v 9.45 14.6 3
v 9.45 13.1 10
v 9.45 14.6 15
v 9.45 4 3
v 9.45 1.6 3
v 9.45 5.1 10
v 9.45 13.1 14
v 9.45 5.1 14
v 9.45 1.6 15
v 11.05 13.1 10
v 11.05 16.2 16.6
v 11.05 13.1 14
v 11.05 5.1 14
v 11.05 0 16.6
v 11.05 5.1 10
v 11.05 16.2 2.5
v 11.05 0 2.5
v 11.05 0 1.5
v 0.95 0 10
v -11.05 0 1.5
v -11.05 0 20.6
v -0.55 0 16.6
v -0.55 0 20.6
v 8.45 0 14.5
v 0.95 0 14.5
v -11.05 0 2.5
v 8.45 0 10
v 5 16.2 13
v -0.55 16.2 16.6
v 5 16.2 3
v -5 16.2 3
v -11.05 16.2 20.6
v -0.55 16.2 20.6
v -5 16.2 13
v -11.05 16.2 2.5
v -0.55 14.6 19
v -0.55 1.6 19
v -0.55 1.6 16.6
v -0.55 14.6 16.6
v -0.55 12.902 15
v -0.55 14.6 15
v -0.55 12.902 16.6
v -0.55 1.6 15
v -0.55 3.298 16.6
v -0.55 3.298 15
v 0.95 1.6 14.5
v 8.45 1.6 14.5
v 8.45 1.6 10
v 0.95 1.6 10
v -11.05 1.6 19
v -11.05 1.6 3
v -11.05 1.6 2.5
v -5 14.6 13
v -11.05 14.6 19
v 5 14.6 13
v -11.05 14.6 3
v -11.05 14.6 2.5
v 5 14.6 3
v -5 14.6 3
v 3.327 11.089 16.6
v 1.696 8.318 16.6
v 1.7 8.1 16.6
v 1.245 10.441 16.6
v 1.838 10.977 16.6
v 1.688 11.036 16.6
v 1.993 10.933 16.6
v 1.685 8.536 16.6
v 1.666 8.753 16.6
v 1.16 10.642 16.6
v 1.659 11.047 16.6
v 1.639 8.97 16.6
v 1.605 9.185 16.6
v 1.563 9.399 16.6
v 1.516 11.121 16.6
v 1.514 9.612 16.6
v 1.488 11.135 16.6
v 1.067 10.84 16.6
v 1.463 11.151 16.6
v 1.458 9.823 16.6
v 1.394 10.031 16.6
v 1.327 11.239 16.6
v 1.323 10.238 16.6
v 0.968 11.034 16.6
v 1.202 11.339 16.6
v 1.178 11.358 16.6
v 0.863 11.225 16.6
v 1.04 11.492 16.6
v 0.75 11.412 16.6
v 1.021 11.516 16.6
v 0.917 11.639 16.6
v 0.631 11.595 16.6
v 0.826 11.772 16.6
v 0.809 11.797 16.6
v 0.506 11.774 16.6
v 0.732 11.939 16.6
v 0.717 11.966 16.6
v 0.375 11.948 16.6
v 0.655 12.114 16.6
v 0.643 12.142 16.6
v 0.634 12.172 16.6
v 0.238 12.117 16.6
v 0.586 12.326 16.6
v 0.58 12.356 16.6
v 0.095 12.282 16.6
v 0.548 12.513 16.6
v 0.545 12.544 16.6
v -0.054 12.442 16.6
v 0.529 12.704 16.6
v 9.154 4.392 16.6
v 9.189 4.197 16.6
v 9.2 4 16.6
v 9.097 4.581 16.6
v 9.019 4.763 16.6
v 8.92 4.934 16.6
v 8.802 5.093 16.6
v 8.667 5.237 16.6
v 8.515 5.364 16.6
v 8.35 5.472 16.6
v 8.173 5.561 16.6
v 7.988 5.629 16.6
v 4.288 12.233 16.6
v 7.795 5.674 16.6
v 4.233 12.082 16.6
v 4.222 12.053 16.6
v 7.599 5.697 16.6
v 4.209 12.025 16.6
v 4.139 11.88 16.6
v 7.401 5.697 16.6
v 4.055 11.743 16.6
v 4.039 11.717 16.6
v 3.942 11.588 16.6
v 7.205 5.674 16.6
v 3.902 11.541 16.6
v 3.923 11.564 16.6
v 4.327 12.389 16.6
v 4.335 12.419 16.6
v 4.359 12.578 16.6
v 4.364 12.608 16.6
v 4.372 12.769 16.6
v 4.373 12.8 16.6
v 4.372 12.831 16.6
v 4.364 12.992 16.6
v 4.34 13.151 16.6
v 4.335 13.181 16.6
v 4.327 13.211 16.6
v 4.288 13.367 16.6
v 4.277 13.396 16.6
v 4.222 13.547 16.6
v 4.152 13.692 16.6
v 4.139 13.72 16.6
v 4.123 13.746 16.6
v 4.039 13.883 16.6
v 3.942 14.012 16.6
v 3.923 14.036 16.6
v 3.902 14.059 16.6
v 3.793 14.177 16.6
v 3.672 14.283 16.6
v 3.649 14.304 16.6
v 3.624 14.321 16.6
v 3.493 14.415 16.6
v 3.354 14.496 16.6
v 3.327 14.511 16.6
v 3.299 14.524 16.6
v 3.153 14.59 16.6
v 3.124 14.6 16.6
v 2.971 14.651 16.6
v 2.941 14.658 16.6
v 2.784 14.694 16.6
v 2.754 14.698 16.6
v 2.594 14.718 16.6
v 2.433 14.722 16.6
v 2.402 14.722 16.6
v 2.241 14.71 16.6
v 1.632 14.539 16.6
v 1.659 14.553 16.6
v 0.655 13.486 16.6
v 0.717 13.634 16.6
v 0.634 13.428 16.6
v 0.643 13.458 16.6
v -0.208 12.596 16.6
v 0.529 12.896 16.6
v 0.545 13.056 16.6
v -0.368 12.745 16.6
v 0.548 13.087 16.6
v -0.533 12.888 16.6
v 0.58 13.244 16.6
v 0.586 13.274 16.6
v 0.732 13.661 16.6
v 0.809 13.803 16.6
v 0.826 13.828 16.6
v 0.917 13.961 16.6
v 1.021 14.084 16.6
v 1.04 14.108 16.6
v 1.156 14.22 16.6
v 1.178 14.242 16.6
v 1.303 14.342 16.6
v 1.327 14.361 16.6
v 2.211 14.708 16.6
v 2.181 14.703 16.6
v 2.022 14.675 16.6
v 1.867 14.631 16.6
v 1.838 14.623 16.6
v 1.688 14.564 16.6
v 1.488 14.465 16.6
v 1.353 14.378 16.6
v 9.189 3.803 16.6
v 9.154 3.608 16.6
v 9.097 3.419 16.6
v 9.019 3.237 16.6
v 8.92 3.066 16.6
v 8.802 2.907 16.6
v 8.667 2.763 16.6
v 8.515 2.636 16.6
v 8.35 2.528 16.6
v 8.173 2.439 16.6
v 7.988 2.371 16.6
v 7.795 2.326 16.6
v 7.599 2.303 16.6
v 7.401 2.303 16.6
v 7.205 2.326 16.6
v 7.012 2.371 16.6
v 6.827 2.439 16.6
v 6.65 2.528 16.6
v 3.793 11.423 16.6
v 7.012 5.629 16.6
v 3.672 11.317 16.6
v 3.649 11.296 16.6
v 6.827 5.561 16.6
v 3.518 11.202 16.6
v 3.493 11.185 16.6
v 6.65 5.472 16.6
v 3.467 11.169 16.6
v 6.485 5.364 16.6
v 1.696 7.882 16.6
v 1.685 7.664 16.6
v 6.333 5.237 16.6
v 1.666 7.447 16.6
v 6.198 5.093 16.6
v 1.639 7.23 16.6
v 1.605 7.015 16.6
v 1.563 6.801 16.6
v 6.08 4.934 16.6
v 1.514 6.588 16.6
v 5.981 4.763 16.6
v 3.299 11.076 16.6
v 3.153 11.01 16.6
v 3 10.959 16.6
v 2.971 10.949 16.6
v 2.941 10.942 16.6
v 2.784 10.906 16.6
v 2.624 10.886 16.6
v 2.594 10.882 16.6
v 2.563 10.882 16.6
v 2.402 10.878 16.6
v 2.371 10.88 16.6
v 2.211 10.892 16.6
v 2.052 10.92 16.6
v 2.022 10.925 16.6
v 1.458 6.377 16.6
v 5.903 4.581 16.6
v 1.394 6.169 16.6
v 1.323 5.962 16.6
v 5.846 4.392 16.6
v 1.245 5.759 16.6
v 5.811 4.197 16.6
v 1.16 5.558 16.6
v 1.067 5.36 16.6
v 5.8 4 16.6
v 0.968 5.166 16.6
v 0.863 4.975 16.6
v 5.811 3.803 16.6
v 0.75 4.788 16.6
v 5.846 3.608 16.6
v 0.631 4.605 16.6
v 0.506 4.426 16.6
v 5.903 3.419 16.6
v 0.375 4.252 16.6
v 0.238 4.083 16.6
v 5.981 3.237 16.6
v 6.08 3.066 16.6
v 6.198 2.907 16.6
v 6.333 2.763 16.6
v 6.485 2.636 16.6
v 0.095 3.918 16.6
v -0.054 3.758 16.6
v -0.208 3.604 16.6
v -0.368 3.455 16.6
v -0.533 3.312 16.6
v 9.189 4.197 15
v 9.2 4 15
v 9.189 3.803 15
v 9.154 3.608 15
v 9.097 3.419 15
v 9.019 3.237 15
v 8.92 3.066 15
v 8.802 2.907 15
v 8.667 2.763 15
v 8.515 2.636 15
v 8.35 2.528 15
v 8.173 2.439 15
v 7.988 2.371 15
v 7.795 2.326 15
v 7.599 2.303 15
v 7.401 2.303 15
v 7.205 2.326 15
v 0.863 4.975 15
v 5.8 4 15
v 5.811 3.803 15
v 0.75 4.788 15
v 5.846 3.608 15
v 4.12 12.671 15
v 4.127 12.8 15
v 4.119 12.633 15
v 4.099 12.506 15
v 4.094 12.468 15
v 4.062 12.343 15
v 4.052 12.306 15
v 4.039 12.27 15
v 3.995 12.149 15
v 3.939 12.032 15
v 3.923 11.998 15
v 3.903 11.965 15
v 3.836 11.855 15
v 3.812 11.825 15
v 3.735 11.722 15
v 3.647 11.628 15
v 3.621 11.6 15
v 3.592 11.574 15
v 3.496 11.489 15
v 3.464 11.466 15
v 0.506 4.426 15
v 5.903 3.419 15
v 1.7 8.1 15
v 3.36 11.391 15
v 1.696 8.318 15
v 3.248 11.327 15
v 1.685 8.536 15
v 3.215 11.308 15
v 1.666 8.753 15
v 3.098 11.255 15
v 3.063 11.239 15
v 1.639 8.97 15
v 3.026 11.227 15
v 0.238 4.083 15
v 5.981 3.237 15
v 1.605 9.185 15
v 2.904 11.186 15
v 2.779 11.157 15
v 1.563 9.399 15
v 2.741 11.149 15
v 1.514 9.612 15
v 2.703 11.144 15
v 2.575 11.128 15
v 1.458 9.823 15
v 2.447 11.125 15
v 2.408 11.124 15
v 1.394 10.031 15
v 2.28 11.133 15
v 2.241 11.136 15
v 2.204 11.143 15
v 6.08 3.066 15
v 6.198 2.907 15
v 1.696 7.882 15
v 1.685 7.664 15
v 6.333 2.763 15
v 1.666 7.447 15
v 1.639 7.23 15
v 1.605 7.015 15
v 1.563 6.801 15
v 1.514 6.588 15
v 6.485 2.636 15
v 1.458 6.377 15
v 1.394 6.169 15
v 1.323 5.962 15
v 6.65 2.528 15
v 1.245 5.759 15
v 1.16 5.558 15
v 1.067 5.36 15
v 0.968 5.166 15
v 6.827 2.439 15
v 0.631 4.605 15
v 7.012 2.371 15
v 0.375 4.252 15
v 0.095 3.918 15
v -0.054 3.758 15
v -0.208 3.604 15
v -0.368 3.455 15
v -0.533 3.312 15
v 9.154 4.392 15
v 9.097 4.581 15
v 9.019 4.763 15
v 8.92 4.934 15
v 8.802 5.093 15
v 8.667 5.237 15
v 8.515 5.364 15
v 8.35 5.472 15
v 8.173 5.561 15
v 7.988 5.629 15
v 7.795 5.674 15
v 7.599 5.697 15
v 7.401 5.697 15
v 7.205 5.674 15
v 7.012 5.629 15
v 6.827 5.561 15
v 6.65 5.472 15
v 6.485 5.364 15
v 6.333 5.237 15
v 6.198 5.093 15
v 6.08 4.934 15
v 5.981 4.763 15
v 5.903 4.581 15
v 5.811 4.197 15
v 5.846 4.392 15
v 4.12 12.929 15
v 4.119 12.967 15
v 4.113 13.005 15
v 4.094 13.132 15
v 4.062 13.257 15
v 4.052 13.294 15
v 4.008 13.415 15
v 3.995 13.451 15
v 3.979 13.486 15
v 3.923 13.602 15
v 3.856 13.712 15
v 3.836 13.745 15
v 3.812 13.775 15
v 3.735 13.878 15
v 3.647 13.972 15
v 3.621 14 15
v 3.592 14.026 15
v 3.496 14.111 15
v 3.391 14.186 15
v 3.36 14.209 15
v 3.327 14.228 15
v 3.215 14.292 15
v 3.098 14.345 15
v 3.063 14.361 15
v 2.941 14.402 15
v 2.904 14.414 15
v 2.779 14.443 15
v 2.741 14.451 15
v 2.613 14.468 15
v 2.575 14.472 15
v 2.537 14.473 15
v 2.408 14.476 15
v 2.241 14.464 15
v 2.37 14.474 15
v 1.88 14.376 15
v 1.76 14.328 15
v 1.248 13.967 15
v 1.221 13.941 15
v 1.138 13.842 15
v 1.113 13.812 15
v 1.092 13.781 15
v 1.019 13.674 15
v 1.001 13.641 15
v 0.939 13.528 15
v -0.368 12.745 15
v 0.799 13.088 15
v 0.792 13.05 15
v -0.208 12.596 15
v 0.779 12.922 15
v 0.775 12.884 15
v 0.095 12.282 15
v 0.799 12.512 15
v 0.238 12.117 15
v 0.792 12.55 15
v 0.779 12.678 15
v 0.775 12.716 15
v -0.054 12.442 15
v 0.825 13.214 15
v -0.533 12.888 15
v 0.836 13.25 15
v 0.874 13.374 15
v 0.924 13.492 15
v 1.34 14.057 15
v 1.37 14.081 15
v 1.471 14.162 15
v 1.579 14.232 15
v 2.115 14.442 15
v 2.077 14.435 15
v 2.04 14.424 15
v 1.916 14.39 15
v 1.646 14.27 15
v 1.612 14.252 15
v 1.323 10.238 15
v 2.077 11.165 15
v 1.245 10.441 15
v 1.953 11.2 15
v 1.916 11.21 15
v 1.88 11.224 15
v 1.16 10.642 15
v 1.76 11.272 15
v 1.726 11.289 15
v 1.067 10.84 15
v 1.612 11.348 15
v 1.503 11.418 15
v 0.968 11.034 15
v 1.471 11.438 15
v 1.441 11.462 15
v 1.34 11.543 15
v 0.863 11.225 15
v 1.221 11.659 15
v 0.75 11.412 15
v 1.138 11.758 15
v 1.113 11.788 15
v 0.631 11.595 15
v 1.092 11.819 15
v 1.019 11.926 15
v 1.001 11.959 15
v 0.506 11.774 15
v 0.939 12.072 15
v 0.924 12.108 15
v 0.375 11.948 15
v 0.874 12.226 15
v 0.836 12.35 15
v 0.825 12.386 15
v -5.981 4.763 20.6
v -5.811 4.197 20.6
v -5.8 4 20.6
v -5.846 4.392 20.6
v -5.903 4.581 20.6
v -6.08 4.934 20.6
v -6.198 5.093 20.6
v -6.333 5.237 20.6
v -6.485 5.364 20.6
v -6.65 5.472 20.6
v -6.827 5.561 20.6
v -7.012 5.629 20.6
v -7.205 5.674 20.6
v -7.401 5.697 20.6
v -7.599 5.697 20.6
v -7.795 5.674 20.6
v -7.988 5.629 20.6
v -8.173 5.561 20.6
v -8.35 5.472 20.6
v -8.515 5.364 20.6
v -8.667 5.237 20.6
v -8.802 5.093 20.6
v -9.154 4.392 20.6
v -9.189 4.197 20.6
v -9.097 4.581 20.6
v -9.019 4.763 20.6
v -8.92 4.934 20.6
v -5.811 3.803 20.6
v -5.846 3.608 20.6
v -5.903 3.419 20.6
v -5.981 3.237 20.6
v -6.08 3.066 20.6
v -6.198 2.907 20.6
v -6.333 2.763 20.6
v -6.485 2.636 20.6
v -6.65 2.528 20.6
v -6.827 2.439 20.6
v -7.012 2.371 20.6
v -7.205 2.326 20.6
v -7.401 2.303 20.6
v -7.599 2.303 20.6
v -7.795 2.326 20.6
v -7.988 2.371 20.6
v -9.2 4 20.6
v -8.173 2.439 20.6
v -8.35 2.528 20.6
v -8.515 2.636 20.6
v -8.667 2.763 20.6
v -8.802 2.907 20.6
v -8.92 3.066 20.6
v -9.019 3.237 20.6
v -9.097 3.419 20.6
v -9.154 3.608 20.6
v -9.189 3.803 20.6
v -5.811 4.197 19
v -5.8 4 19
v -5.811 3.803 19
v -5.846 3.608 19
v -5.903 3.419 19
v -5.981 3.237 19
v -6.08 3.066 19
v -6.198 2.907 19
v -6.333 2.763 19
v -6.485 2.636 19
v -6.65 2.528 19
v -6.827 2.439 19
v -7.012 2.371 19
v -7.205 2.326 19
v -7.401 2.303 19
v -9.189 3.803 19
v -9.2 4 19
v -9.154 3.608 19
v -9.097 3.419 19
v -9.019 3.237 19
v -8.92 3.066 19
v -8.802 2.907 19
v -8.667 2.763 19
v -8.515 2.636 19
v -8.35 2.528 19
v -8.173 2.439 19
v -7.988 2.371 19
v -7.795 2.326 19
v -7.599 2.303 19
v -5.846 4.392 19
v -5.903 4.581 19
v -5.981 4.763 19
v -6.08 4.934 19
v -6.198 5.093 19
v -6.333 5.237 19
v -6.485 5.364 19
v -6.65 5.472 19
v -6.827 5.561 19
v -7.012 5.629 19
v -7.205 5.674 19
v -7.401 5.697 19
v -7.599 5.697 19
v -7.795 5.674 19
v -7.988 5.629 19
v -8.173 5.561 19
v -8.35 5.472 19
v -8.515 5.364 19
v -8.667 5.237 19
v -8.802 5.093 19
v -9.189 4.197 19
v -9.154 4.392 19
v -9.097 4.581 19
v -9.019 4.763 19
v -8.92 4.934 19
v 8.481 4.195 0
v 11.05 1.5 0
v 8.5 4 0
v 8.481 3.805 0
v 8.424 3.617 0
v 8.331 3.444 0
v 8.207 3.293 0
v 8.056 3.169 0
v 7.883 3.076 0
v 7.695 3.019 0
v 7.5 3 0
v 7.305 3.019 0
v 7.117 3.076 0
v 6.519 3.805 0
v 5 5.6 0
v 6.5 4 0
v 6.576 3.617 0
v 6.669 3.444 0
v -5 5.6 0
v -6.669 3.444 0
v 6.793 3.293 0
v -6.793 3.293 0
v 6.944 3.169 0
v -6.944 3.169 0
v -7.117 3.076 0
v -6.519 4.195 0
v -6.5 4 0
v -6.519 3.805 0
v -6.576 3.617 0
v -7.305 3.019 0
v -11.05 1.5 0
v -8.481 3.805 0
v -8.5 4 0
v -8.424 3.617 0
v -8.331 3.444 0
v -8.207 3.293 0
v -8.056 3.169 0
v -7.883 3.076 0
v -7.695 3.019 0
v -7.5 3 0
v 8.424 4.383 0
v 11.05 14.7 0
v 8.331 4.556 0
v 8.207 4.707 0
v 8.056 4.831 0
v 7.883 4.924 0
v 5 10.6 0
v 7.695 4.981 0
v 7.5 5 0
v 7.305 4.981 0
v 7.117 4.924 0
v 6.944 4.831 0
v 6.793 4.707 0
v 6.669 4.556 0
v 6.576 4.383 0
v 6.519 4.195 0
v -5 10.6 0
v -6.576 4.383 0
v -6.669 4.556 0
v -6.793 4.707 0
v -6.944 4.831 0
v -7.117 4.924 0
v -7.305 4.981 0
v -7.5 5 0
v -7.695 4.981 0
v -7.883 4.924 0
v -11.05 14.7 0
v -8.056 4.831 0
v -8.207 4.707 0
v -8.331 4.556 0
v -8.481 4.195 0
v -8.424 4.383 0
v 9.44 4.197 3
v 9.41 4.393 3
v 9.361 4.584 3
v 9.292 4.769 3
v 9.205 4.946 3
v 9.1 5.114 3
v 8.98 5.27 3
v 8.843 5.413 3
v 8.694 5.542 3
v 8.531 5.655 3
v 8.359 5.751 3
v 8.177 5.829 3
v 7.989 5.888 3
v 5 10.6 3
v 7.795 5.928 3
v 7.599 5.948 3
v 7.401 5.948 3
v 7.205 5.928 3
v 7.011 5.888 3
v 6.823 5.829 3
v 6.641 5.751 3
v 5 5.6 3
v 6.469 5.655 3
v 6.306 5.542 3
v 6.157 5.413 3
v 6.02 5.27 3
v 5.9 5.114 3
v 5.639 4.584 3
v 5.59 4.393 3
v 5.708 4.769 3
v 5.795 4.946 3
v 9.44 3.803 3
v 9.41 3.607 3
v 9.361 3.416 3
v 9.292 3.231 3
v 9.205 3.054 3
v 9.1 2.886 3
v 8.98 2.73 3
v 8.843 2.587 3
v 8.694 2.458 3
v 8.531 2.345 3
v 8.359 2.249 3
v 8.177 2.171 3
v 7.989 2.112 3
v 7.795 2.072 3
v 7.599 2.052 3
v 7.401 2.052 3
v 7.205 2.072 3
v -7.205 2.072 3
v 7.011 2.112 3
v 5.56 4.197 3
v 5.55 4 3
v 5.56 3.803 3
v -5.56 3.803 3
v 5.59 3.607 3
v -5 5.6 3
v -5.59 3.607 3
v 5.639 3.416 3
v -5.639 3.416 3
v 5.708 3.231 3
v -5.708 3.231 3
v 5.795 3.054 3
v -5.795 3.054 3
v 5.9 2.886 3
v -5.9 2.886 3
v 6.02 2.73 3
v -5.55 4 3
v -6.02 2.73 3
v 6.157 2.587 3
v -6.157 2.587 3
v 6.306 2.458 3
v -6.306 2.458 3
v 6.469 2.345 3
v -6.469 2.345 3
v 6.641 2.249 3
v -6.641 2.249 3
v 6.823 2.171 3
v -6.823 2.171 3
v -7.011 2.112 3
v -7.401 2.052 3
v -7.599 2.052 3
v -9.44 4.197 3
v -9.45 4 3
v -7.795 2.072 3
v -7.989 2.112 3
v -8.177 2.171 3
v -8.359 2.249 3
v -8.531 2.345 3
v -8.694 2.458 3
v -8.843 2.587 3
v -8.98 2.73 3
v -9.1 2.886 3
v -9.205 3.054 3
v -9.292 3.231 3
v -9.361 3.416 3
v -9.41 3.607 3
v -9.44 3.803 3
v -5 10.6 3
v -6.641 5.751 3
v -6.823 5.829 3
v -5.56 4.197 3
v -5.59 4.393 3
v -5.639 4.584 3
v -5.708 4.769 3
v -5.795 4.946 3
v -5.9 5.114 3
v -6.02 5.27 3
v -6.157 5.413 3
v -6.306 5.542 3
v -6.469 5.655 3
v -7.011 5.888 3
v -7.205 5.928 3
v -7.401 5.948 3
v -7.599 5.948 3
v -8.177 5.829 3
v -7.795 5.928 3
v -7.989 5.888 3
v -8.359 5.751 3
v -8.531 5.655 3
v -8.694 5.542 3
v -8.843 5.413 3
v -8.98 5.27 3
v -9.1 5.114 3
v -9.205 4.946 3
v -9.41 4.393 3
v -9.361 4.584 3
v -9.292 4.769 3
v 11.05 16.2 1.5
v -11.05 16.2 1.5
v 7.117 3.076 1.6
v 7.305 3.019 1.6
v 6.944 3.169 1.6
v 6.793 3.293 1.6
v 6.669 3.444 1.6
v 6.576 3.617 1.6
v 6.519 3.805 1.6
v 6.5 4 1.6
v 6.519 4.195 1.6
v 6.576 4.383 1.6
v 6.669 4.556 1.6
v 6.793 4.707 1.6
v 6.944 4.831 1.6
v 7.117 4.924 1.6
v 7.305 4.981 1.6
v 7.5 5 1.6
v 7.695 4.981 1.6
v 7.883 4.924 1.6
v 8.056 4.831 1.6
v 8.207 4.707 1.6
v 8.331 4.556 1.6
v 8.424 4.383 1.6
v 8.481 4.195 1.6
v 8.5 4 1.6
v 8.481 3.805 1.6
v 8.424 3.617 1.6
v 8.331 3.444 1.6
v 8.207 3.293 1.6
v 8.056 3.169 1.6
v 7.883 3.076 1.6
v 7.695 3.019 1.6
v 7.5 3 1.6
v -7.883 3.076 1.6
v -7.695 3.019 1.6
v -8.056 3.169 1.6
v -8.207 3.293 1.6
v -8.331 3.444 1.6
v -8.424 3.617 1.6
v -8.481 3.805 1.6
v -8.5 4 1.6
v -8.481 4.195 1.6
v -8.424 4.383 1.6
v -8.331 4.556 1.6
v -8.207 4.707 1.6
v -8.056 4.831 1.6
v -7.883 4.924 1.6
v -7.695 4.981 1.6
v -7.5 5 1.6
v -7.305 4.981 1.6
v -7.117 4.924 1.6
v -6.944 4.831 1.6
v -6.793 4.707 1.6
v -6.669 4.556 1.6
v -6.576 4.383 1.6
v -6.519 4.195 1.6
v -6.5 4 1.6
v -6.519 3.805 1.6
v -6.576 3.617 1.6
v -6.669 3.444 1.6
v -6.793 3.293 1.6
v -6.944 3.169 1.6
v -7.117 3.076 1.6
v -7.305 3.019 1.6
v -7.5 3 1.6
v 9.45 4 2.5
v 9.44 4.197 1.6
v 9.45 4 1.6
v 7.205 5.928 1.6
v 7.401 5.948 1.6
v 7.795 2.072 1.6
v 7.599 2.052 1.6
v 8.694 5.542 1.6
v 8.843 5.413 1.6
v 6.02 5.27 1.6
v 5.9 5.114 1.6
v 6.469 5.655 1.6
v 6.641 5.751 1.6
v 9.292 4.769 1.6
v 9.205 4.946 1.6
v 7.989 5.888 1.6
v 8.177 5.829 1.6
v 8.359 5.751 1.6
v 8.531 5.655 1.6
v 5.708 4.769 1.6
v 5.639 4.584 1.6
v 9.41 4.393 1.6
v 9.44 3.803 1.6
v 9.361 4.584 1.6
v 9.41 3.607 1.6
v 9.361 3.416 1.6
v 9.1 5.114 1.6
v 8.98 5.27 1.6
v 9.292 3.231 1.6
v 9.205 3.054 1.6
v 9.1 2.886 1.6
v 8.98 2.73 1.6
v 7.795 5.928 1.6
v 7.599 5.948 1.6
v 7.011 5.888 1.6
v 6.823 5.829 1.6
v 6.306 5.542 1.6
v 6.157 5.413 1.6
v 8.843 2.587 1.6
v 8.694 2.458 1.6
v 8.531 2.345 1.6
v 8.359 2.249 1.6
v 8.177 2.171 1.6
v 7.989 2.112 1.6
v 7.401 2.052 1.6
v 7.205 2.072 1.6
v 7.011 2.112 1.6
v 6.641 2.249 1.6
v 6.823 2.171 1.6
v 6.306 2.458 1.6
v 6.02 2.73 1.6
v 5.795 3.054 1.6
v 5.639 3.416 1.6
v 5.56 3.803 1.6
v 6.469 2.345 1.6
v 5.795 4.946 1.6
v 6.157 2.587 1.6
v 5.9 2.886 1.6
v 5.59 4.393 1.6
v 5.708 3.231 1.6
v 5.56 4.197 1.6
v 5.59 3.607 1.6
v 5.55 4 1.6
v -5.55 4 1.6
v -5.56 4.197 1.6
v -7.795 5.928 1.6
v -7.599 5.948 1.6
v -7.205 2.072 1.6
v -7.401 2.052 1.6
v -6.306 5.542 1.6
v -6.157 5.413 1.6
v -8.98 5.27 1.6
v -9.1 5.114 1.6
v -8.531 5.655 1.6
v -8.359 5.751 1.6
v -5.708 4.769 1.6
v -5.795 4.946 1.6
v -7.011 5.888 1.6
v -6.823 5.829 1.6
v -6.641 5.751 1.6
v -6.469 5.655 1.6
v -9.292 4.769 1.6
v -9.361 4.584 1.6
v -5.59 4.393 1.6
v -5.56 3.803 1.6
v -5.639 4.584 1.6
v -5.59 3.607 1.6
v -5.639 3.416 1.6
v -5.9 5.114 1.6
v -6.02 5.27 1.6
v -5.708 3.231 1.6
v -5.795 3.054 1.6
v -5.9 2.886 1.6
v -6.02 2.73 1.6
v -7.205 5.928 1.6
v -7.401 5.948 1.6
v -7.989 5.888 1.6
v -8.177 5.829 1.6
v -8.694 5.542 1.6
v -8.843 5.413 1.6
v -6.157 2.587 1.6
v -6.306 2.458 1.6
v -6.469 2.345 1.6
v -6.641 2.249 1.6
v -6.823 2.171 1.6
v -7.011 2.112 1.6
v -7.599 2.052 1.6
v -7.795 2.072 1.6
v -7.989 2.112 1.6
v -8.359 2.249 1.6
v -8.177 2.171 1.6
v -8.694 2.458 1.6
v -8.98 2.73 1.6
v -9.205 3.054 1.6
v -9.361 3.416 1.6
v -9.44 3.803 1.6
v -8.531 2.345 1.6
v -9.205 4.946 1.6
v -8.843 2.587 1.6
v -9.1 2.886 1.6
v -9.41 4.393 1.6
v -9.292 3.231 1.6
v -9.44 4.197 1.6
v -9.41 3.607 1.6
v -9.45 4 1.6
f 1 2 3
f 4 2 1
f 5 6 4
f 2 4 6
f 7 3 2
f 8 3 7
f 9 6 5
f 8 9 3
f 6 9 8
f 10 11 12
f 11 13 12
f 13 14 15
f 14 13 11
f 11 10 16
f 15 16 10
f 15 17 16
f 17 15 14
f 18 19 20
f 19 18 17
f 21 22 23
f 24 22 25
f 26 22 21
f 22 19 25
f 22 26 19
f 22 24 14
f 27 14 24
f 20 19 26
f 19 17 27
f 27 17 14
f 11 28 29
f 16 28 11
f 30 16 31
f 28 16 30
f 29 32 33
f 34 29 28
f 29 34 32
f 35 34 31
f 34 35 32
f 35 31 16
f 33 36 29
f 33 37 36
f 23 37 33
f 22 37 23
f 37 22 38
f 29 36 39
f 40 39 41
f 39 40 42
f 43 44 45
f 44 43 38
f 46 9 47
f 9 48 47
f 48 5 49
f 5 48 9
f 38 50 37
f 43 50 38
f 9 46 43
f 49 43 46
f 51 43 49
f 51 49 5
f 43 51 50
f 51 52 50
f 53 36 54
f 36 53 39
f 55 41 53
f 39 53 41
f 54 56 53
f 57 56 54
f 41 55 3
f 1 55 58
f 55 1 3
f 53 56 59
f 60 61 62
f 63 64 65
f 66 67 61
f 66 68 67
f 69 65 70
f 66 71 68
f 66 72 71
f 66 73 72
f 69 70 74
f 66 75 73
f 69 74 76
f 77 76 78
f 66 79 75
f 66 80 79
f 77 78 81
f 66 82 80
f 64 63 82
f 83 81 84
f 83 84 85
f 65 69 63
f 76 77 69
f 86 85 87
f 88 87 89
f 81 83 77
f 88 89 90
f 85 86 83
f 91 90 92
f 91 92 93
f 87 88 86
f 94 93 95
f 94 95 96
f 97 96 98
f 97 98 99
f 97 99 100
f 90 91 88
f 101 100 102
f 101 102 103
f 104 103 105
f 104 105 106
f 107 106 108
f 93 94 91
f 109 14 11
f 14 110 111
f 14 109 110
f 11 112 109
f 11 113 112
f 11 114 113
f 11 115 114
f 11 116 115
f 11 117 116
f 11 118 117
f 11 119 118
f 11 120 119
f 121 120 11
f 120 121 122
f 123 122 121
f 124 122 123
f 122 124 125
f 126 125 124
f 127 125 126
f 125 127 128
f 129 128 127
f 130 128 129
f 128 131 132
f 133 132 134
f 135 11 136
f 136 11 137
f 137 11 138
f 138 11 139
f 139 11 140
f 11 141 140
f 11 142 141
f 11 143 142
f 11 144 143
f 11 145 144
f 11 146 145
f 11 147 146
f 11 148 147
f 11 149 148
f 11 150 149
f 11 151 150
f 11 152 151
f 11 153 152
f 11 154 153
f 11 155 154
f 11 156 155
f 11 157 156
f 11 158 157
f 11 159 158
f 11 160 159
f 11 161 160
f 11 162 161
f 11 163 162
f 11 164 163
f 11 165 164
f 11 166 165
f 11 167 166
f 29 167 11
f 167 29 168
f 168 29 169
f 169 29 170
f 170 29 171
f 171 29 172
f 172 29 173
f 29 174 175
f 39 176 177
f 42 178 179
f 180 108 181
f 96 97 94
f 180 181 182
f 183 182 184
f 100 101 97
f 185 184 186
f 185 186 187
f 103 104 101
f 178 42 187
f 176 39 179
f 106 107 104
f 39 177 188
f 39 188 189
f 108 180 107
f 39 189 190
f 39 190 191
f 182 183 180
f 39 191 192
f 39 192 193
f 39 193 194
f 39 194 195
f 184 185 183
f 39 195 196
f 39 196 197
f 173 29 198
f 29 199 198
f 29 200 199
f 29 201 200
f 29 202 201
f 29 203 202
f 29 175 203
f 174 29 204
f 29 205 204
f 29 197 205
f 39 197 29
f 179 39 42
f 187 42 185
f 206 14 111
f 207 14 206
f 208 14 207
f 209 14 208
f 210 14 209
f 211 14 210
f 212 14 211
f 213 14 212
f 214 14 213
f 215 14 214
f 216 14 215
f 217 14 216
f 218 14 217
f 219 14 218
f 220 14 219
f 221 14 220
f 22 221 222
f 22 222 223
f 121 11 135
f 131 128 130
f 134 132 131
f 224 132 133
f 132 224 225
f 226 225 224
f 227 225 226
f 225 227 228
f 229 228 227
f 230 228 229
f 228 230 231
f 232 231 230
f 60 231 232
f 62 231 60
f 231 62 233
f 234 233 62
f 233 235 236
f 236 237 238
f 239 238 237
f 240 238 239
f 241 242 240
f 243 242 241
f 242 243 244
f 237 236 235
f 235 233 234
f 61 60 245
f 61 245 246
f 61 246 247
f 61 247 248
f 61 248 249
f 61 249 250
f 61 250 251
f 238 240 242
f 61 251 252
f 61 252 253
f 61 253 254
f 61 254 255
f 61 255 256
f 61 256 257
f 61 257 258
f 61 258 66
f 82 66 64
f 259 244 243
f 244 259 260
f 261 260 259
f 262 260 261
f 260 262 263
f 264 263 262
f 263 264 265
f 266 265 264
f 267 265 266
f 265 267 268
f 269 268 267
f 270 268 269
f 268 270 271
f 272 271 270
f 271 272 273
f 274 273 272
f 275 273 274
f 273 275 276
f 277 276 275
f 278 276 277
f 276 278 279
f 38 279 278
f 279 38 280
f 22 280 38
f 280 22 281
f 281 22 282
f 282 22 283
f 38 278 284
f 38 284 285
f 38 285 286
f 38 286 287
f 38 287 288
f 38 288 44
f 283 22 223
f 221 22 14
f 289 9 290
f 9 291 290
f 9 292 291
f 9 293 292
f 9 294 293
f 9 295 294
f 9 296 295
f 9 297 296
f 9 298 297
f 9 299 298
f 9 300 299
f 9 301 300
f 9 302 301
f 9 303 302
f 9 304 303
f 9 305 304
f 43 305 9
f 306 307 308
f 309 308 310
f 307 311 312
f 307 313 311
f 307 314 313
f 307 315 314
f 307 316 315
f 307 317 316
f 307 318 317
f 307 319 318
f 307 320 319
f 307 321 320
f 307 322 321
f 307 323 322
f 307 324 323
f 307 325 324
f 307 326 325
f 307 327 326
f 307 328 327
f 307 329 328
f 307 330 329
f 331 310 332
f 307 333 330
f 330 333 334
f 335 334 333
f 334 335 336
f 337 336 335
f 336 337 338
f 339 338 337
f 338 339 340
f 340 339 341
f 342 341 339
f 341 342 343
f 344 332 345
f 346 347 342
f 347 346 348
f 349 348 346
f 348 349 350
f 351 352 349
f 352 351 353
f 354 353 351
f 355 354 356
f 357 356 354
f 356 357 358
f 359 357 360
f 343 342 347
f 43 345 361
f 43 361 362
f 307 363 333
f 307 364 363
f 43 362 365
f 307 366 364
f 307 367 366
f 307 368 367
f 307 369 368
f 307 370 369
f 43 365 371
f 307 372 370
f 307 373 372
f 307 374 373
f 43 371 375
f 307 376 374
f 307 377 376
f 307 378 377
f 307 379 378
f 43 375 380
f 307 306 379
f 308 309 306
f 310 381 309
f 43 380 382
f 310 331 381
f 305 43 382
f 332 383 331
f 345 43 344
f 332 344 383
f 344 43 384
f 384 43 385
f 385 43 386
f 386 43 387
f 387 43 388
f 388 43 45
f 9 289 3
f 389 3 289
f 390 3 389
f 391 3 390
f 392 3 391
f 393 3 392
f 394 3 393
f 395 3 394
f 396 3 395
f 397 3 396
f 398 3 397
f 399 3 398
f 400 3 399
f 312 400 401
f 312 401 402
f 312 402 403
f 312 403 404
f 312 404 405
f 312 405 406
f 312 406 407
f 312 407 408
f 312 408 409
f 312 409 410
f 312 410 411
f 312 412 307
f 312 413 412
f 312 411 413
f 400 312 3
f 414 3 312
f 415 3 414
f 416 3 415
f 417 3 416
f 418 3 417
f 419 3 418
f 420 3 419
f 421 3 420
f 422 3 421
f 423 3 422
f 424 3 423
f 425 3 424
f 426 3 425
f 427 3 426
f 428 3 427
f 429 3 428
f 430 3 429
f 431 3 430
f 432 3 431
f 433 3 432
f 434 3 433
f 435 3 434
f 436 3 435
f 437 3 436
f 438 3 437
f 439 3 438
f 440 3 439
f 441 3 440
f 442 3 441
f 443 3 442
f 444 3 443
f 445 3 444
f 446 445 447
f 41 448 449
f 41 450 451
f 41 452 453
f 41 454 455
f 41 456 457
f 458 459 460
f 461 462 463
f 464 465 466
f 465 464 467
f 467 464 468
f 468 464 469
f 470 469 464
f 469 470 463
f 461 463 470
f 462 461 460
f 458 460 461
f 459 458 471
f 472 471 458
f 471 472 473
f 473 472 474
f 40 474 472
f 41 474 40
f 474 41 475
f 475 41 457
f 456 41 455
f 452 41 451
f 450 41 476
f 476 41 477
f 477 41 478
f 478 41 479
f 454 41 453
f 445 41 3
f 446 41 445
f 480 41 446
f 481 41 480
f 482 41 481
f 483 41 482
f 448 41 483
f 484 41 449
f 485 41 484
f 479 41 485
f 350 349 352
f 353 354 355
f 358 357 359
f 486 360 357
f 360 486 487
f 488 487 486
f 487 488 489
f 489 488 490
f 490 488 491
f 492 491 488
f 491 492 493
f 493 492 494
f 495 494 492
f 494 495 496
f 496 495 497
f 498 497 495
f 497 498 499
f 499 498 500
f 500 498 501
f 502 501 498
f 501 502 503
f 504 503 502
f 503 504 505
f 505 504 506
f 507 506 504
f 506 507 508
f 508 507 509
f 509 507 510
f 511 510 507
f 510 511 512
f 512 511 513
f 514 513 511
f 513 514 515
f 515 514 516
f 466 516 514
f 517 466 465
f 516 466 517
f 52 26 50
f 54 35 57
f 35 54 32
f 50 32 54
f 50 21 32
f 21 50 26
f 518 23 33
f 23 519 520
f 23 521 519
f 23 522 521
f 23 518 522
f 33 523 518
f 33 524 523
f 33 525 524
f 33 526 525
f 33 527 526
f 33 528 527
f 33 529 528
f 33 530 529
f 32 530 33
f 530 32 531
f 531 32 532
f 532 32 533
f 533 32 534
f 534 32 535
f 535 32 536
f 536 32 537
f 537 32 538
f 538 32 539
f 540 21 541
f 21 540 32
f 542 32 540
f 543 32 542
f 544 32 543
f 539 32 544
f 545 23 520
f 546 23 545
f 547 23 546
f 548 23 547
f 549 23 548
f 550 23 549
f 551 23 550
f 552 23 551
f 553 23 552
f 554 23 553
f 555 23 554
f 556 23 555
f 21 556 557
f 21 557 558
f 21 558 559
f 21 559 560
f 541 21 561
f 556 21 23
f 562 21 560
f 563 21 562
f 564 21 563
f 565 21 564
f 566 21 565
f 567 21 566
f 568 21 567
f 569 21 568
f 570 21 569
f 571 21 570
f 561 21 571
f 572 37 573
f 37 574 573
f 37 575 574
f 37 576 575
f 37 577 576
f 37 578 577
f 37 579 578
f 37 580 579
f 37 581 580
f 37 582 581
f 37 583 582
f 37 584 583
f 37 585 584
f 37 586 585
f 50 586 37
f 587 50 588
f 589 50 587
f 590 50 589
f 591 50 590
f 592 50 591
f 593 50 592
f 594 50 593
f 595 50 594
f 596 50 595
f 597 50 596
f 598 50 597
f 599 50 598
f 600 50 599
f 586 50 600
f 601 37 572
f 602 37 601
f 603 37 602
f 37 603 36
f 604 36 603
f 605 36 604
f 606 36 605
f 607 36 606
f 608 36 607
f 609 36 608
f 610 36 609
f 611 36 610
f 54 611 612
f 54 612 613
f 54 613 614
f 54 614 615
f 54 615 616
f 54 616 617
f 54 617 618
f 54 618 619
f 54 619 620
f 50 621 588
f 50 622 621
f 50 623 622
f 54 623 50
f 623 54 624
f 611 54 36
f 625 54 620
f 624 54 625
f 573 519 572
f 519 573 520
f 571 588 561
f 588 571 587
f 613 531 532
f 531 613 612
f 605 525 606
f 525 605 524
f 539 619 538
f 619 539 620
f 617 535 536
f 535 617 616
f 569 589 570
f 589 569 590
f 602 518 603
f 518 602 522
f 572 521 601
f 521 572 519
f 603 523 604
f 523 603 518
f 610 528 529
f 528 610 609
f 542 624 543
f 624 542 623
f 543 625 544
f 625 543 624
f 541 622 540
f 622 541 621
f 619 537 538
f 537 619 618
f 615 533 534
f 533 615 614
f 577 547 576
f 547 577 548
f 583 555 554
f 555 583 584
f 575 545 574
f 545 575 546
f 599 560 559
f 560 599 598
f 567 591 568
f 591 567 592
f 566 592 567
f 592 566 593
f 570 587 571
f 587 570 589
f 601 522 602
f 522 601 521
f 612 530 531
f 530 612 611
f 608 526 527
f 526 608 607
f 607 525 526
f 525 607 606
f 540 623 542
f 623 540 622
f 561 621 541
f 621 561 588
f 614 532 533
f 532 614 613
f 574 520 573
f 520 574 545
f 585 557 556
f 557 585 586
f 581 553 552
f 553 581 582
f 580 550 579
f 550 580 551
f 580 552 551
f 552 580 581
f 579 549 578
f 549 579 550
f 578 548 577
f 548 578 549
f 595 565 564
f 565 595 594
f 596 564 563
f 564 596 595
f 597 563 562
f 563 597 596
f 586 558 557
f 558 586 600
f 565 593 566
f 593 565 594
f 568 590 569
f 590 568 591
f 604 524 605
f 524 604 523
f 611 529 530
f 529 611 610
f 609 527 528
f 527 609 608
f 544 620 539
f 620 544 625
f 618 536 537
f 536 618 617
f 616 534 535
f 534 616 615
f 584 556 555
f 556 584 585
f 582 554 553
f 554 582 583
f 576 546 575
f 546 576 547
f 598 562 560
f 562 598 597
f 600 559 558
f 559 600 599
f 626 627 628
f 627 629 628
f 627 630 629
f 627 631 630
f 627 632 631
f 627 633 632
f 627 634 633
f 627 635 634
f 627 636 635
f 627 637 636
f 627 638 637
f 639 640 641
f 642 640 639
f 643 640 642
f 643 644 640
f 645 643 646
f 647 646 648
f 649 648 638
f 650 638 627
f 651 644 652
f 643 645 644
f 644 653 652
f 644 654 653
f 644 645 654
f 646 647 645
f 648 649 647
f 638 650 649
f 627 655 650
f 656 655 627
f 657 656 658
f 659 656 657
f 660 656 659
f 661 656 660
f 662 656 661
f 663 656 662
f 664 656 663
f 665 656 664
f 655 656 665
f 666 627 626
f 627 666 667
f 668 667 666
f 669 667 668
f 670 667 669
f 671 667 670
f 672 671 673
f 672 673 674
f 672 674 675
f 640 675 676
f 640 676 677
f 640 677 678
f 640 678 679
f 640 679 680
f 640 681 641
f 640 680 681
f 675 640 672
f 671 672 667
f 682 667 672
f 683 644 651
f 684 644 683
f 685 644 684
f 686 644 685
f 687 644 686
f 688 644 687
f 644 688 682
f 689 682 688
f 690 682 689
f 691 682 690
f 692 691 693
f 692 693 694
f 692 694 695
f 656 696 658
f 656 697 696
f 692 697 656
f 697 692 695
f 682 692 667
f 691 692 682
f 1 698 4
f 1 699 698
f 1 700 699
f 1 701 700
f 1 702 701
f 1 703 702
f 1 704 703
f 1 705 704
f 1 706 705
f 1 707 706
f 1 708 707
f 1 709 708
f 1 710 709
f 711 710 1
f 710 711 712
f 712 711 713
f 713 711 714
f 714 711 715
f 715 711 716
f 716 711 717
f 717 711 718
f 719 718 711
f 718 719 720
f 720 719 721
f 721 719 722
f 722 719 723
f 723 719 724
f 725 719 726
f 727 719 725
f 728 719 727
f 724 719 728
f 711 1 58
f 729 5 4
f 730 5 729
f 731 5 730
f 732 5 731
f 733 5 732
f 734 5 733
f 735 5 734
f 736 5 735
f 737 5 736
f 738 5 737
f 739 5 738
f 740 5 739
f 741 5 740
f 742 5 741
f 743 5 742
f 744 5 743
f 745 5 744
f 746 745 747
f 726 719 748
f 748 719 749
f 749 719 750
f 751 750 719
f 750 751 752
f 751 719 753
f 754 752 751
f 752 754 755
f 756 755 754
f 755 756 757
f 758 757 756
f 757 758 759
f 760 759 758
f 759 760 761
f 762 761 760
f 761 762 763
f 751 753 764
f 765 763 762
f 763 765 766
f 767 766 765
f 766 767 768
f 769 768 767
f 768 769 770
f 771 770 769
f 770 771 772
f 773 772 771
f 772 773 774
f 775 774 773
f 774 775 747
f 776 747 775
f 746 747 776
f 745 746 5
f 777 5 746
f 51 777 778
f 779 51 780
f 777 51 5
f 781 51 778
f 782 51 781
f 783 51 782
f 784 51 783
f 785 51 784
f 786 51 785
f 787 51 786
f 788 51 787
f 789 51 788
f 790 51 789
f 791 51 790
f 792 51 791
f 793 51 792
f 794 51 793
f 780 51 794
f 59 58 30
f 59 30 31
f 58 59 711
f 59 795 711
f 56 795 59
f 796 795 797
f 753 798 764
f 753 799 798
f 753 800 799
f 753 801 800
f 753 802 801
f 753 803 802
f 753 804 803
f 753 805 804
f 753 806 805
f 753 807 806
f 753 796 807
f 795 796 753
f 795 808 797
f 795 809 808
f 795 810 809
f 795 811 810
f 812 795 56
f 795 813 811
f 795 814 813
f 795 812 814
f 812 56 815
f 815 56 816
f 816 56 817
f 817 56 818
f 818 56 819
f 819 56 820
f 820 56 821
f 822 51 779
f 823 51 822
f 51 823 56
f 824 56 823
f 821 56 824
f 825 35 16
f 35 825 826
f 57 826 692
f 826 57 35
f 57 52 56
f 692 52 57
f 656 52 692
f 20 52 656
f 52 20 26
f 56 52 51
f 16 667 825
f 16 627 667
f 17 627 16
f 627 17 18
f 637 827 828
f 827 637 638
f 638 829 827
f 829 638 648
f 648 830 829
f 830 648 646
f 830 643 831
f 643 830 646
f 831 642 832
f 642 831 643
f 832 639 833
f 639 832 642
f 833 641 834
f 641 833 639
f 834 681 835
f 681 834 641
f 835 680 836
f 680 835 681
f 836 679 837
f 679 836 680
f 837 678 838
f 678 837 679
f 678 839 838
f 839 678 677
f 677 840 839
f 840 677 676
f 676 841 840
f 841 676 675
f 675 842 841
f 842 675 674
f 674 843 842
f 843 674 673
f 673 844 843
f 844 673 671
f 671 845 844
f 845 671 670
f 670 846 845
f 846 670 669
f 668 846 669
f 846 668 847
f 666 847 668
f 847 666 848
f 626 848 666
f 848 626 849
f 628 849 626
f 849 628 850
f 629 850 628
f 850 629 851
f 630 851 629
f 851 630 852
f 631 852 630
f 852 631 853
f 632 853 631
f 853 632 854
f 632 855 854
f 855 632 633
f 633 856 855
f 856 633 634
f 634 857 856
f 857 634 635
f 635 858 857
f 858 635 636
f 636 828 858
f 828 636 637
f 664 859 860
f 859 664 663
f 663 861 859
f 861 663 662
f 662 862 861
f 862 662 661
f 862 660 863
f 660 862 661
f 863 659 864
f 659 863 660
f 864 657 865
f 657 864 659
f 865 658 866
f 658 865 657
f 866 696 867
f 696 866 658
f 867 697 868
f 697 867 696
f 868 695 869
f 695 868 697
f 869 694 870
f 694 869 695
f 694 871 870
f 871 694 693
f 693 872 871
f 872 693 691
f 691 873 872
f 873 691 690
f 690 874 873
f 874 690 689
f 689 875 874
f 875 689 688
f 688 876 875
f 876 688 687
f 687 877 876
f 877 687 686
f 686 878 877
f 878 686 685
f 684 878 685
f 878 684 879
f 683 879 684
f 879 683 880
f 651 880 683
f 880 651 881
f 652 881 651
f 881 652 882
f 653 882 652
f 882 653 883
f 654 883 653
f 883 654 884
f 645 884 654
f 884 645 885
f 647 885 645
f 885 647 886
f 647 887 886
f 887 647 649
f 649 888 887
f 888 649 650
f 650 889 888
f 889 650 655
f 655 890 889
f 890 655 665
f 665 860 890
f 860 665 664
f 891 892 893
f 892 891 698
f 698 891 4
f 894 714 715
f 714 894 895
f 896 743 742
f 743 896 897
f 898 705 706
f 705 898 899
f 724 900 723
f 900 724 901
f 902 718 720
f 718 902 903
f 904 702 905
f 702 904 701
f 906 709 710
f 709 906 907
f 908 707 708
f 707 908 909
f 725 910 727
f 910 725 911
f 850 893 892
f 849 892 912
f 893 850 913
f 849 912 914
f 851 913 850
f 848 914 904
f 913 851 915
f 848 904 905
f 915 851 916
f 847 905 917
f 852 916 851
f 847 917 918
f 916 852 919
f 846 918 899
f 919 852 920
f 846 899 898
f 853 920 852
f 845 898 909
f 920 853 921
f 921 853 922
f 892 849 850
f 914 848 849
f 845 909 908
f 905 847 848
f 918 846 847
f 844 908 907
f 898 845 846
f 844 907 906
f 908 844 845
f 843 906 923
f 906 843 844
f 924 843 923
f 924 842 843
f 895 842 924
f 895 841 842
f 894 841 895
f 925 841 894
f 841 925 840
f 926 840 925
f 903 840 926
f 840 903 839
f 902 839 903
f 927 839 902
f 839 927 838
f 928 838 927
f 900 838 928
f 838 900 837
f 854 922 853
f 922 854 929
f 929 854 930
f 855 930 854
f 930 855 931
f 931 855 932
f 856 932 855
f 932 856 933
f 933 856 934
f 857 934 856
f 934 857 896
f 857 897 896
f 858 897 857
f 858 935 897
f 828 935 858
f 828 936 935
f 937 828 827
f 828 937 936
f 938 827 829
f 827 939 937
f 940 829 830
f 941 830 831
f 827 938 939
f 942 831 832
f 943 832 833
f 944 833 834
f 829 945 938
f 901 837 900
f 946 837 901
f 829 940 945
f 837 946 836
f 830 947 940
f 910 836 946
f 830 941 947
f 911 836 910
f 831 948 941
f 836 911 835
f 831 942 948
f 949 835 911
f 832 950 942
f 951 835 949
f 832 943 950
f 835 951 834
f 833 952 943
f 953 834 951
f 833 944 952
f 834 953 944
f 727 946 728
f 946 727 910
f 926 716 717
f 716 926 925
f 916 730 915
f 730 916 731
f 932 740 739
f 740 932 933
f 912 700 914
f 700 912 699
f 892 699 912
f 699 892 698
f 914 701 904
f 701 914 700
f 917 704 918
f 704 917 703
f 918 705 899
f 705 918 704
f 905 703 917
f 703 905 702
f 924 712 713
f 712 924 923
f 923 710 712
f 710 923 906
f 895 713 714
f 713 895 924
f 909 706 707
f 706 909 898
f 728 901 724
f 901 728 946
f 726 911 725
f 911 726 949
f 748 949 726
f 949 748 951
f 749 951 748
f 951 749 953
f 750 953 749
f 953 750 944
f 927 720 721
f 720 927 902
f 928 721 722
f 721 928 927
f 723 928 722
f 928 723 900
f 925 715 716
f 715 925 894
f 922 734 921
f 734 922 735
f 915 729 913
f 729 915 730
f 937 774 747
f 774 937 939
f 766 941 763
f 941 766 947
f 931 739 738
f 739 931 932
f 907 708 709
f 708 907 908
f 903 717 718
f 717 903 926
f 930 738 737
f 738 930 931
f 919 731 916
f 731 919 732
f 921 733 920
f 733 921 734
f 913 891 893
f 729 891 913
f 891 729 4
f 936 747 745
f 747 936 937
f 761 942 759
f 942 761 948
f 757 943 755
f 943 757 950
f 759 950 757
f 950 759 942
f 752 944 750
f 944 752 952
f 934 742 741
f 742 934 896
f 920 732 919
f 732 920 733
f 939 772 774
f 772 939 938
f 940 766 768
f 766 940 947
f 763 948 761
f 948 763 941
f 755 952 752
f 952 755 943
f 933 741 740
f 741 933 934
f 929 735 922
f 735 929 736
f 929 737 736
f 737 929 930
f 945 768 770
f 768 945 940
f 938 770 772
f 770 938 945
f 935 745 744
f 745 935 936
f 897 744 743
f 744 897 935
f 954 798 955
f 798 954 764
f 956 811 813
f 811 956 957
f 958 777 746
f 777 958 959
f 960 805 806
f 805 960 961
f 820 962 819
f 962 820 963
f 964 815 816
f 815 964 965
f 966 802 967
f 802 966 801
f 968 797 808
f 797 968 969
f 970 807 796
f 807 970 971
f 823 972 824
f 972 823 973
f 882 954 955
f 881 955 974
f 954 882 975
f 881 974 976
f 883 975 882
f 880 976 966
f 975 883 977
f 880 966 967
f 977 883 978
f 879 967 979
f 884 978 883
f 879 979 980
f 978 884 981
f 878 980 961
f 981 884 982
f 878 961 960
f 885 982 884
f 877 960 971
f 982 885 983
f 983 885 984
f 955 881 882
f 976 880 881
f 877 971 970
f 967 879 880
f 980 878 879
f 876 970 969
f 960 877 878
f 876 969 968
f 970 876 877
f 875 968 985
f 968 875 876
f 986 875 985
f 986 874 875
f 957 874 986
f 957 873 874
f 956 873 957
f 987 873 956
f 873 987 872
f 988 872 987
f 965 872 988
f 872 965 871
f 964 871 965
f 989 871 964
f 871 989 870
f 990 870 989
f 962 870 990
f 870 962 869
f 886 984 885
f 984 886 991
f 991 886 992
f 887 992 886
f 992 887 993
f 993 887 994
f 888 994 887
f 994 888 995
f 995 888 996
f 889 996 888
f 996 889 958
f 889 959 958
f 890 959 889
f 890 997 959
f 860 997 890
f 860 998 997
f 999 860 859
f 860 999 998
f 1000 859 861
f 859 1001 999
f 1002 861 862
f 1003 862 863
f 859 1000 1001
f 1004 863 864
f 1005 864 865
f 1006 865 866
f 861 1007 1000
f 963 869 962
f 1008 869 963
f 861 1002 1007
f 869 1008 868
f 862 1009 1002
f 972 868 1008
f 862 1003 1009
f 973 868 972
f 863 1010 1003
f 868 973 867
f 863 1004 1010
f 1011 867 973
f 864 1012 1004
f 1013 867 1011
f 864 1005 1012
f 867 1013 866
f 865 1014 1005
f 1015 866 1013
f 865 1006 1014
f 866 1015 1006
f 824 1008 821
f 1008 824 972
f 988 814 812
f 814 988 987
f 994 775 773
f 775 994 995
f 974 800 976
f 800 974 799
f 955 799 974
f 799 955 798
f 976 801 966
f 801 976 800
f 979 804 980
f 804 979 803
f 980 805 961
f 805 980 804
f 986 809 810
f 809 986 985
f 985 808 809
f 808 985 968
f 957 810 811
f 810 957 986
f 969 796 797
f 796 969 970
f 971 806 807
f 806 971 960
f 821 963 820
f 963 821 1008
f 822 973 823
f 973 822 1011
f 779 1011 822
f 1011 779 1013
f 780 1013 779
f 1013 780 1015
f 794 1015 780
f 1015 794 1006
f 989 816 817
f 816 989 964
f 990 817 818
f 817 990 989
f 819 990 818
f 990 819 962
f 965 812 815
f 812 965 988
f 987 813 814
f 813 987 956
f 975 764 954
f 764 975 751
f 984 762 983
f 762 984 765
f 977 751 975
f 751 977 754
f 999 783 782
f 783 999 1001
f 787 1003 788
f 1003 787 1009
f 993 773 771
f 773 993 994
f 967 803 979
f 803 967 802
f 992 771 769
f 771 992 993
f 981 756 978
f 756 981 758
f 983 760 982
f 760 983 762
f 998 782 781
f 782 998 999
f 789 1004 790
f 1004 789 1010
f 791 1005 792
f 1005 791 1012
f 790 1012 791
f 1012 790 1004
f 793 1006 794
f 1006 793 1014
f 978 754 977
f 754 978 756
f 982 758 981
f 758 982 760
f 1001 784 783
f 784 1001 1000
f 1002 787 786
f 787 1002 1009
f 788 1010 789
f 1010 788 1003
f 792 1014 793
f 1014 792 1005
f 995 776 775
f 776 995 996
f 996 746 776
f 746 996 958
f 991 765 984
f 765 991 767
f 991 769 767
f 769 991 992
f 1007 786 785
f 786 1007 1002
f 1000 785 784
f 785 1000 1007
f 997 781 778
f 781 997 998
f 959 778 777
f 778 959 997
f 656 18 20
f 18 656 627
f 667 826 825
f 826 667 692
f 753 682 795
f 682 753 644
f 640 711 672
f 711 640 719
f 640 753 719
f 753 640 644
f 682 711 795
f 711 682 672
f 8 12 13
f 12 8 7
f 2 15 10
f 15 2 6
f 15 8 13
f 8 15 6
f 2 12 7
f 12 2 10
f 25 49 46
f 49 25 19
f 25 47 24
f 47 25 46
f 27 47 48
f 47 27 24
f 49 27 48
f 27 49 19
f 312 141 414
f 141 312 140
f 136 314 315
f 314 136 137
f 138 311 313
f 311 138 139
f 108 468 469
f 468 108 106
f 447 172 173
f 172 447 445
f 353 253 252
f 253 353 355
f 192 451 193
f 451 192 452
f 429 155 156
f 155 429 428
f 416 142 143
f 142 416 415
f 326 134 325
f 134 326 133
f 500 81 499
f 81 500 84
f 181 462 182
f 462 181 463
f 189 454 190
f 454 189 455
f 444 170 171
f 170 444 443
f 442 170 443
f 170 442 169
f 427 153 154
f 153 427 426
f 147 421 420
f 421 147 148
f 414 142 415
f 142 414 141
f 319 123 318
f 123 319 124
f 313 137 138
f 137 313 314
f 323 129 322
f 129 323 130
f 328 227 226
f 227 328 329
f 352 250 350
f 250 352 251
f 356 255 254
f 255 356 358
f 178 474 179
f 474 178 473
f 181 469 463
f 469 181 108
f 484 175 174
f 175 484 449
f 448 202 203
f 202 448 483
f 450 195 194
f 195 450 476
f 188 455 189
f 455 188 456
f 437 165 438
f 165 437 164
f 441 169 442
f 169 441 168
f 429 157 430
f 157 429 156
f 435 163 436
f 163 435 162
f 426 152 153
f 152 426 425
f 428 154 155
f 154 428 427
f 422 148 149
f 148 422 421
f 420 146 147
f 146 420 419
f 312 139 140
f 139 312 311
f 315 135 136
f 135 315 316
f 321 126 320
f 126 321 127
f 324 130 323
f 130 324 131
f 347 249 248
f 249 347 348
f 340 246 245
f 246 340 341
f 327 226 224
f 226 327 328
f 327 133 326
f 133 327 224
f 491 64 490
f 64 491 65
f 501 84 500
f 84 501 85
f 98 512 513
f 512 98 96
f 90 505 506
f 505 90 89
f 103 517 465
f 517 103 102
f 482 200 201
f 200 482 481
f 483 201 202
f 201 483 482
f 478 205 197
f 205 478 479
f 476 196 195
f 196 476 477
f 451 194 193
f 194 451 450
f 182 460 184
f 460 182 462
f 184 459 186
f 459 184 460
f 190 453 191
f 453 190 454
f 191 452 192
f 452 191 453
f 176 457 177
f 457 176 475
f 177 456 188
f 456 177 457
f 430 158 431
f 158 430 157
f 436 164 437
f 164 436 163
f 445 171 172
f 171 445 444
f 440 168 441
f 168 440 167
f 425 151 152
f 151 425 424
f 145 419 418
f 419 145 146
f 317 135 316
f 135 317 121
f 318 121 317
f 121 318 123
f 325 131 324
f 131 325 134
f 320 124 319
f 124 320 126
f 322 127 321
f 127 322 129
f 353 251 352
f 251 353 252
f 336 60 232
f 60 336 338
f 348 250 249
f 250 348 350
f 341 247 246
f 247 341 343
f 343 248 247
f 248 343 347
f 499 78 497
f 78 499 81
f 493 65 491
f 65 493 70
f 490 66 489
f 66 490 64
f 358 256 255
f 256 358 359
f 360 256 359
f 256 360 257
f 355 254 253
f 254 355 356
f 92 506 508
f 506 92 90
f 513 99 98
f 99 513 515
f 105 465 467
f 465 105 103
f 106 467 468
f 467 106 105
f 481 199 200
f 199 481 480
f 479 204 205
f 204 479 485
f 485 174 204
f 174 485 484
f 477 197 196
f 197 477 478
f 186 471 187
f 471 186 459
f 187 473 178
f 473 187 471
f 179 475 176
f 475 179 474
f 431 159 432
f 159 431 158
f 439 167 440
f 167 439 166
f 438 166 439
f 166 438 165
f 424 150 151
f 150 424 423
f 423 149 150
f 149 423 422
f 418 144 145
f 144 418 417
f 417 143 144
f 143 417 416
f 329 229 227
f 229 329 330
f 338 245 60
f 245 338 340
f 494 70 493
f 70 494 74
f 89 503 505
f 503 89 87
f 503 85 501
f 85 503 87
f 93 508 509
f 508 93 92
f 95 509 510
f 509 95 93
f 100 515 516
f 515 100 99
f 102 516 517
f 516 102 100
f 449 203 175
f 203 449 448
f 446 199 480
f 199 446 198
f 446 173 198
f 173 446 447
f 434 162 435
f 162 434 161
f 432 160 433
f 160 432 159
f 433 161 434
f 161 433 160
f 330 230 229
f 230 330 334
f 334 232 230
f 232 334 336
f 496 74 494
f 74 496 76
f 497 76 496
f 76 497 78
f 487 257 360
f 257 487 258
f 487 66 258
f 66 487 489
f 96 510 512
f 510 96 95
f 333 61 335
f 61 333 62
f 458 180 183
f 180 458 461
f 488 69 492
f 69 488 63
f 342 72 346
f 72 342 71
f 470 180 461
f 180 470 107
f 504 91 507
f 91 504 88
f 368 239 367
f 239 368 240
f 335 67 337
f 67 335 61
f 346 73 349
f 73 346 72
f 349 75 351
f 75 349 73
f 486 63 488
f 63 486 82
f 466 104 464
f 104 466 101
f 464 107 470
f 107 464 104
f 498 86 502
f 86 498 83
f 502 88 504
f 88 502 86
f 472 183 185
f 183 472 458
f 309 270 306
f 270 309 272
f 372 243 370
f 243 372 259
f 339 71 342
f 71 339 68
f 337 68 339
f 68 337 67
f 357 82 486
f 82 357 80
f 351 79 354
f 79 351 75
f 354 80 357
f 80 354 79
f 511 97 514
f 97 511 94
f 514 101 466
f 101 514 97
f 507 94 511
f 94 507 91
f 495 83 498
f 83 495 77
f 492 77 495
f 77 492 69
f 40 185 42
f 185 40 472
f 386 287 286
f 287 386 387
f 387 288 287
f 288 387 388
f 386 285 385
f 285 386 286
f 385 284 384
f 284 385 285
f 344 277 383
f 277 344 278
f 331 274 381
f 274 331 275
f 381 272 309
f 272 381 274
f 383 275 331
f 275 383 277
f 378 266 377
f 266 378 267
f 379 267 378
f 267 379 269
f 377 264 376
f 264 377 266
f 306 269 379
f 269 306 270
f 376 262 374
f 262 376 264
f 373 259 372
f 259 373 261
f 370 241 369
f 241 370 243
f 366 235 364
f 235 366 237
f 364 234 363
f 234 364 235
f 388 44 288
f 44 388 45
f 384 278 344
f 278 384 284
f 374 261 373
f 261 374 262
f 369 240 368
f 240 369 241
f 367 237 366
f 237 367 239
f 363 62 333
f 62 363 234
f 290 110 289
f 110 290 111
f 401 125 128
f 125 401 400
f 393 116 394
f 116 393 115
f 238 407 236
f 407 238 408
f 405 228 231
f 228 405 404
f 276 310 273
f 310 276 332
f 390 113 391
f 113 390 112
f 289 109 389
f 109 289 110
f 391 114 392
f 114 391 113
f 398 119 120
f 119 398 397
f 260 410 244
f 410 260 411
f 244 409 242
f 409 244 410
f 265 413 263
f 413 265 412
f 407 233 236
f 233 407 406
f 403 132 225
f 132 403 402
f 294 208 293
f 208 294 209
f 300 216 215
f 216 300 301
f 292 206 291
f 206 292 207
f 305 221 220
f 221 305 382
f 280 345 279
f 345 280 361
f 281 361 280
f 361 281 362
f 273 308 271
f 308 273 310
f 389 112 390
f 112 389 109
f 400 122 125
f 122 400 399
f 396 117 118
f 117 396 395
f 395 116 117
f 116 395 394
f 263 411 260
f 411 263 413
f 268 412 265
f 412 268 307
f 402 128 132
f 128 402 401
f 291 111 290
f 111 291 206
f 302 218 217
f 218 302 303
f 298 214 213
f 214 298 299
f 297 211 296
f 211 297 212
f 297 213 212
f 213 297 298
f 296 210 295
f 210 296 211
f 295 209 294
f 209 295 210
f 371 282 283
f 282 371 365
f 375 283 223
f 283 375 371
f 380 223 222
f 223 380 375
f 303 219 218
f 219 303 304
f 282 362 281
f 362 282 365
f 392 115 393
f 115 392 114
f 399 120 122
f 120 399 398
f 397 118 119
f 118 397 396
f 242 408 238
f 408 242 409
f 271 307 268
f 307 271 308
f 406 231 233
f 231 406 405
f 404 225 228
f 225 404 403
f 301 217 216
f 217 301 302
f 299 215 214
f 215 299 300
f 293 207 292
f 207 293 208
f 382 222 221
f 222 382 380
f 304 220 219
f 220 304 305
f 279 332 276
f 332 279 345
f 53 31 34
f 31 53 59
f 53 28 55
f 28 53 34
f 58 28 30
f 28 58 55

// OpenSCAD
$fs = $preview ? 0.5 : 0.2;
$fa = $preview ? 10 : 2;

bw = 1.6; // border width

// base plate
h0 = 3.0;
w0 = 20.5 + bw;
d0 = 13 + 2 * bw;

hd = 2; // hole diameter
hh = 15; // hole distance
hp = 4; // hole placement
sd = 3.4; // scredriwer diameter

hcd = 3.9; // hole cap diameter
hch = 1.4; // hole cap height

// right cover
h1 = 12;
l1 = 10;

con_z = 7.0;
con_h = 4;
con_y = 3.5;
con_w = 8;

but_z = 7.0;
but_h = 4.5;
but_x = 1.0;
but_w = 7.5;

led_d = 3.2;
led_d2 = 4;
led_x = 7;

buz_d = 12.5;
buz_x = 14;

// left cover
h2 = 16;
l2 = w0 - bw - l1;

// back cut
back_w = 10;
back_h = 10;

// bottom cut
bot_w = 10;
bot_d = 5;

ch = 1.5; // front chamfer

eps = 0.5;

// base plate
difference() {
    linear_extrude(h0) {
        difference() {
            translate([-w0 / 2, 0])
                square([w0, d0]);
            translate([hh / 2, hp])
                circle(d = hd);
            translate([-hh / 2, hp])
                circle(d = hd);
        }
    }
    translate([hh / 2, hp, h0 - hch])
        cylinder(d = hcd, h = hch + eps);
    translate([-hh / 2, hp, h0 - hch])
        cylinder(d = hcd, h = hch + eps);
    translate([-w0 / 2, 0, 0])
        chamfer(w0);
    translate([-w0 / 2, d0, 0])
        mirror([0, 1, 0]) chamfer(w0);
    translate([-bot_w / 2, (d0 - bot_d) / 2, -eps])
        cube([bot_w, bot_d, h0 + 2 * eps]);
}

difference() {
    union() {
        right_cover();
        left_cover();
    }
    translate([-back_w / 2, d0 - bw - eps, h0])
        cube([back_w, bw + 2 * eps, back_h]);
}

module right_cover() {
    difference() {
        union() {
            translate([w0 / 2 - bw, 0, h0 - eps])
                cube([bw, d0, h1 + 2 * eps]);
            translate([w0 / 2 - bw - l1, 0, h0 - eps])
                cube([l1, bw, h1 + 2 * eps]);
            translate([w0 / 2 - bw - l1, d0 - bw, h0 - eps])
                cube([l1, bw, h1 + 2 * eps]);
            translate([w0 / 2 - bw - l1, 0, h0 + h1])
                cube([l1 + bw, d0, bw]);
        }
        // connector hole
        translate([w0 / 2 - bw - eps, con_y + bw, con_z + h0])
             cube([bw + 2 * eps, con_w, con_h]);
        // button hole
        translate([w0 / 2 - bw - but_x - but_w, -eps, but_z + h0])
            cube([but_w, bw + 2 * eps, but_h]);
        // led hole
        translate([w0 / 2 - bw - led_x, d0 - bw - (led_d2 + led_d) / 4, h1 + h0 - eps])
            cylinder(d1 = led_d, d2 = led_d2, h = bw + 2 * eps);  
        // buzzer hole
        translate([w0 / 2 - bw - buz_x, d0 / 2, h1 + h0 - eps])
            cylinder(d = buz_d, h = bw + 2 * eps);
        // screwdriver hole
        translate([hh / 2, hp, h1 + h0 - eps])
            cylinder(d = sd, h = bw + 2 * eps);
    }
}

module left_cover() {
    difference() {
        union() {
            translate([-w0 / 2, 0, h0 - eps])
                cube([l2, bw, h2 + 2 * eps]);
            translate([-w0 / 2, d0 - bw, h0 - eps])
                cube([l2, bw, h2 + 2 * eps]);
            translate([-w0 / 2, 0, h0 + h2])
                cube([l2, d0, bw]);
        }
        // screwdriver hole
        translate([-hh / 2, hp, h2 + h0 - eps])
            cylinder(d = sd, h = bw + 2 * eps);
    }
}   

module chamfer(d) {
    translate([-eps, 0, 0])
        rotate([90, 0, 0]) rotate([0, 90, 0])
            linear_extrude(d + 2 * eps)
                polygon([[-eps, -eps], [ch + eps, -eps], [-eps, ch + eps]]);
}
